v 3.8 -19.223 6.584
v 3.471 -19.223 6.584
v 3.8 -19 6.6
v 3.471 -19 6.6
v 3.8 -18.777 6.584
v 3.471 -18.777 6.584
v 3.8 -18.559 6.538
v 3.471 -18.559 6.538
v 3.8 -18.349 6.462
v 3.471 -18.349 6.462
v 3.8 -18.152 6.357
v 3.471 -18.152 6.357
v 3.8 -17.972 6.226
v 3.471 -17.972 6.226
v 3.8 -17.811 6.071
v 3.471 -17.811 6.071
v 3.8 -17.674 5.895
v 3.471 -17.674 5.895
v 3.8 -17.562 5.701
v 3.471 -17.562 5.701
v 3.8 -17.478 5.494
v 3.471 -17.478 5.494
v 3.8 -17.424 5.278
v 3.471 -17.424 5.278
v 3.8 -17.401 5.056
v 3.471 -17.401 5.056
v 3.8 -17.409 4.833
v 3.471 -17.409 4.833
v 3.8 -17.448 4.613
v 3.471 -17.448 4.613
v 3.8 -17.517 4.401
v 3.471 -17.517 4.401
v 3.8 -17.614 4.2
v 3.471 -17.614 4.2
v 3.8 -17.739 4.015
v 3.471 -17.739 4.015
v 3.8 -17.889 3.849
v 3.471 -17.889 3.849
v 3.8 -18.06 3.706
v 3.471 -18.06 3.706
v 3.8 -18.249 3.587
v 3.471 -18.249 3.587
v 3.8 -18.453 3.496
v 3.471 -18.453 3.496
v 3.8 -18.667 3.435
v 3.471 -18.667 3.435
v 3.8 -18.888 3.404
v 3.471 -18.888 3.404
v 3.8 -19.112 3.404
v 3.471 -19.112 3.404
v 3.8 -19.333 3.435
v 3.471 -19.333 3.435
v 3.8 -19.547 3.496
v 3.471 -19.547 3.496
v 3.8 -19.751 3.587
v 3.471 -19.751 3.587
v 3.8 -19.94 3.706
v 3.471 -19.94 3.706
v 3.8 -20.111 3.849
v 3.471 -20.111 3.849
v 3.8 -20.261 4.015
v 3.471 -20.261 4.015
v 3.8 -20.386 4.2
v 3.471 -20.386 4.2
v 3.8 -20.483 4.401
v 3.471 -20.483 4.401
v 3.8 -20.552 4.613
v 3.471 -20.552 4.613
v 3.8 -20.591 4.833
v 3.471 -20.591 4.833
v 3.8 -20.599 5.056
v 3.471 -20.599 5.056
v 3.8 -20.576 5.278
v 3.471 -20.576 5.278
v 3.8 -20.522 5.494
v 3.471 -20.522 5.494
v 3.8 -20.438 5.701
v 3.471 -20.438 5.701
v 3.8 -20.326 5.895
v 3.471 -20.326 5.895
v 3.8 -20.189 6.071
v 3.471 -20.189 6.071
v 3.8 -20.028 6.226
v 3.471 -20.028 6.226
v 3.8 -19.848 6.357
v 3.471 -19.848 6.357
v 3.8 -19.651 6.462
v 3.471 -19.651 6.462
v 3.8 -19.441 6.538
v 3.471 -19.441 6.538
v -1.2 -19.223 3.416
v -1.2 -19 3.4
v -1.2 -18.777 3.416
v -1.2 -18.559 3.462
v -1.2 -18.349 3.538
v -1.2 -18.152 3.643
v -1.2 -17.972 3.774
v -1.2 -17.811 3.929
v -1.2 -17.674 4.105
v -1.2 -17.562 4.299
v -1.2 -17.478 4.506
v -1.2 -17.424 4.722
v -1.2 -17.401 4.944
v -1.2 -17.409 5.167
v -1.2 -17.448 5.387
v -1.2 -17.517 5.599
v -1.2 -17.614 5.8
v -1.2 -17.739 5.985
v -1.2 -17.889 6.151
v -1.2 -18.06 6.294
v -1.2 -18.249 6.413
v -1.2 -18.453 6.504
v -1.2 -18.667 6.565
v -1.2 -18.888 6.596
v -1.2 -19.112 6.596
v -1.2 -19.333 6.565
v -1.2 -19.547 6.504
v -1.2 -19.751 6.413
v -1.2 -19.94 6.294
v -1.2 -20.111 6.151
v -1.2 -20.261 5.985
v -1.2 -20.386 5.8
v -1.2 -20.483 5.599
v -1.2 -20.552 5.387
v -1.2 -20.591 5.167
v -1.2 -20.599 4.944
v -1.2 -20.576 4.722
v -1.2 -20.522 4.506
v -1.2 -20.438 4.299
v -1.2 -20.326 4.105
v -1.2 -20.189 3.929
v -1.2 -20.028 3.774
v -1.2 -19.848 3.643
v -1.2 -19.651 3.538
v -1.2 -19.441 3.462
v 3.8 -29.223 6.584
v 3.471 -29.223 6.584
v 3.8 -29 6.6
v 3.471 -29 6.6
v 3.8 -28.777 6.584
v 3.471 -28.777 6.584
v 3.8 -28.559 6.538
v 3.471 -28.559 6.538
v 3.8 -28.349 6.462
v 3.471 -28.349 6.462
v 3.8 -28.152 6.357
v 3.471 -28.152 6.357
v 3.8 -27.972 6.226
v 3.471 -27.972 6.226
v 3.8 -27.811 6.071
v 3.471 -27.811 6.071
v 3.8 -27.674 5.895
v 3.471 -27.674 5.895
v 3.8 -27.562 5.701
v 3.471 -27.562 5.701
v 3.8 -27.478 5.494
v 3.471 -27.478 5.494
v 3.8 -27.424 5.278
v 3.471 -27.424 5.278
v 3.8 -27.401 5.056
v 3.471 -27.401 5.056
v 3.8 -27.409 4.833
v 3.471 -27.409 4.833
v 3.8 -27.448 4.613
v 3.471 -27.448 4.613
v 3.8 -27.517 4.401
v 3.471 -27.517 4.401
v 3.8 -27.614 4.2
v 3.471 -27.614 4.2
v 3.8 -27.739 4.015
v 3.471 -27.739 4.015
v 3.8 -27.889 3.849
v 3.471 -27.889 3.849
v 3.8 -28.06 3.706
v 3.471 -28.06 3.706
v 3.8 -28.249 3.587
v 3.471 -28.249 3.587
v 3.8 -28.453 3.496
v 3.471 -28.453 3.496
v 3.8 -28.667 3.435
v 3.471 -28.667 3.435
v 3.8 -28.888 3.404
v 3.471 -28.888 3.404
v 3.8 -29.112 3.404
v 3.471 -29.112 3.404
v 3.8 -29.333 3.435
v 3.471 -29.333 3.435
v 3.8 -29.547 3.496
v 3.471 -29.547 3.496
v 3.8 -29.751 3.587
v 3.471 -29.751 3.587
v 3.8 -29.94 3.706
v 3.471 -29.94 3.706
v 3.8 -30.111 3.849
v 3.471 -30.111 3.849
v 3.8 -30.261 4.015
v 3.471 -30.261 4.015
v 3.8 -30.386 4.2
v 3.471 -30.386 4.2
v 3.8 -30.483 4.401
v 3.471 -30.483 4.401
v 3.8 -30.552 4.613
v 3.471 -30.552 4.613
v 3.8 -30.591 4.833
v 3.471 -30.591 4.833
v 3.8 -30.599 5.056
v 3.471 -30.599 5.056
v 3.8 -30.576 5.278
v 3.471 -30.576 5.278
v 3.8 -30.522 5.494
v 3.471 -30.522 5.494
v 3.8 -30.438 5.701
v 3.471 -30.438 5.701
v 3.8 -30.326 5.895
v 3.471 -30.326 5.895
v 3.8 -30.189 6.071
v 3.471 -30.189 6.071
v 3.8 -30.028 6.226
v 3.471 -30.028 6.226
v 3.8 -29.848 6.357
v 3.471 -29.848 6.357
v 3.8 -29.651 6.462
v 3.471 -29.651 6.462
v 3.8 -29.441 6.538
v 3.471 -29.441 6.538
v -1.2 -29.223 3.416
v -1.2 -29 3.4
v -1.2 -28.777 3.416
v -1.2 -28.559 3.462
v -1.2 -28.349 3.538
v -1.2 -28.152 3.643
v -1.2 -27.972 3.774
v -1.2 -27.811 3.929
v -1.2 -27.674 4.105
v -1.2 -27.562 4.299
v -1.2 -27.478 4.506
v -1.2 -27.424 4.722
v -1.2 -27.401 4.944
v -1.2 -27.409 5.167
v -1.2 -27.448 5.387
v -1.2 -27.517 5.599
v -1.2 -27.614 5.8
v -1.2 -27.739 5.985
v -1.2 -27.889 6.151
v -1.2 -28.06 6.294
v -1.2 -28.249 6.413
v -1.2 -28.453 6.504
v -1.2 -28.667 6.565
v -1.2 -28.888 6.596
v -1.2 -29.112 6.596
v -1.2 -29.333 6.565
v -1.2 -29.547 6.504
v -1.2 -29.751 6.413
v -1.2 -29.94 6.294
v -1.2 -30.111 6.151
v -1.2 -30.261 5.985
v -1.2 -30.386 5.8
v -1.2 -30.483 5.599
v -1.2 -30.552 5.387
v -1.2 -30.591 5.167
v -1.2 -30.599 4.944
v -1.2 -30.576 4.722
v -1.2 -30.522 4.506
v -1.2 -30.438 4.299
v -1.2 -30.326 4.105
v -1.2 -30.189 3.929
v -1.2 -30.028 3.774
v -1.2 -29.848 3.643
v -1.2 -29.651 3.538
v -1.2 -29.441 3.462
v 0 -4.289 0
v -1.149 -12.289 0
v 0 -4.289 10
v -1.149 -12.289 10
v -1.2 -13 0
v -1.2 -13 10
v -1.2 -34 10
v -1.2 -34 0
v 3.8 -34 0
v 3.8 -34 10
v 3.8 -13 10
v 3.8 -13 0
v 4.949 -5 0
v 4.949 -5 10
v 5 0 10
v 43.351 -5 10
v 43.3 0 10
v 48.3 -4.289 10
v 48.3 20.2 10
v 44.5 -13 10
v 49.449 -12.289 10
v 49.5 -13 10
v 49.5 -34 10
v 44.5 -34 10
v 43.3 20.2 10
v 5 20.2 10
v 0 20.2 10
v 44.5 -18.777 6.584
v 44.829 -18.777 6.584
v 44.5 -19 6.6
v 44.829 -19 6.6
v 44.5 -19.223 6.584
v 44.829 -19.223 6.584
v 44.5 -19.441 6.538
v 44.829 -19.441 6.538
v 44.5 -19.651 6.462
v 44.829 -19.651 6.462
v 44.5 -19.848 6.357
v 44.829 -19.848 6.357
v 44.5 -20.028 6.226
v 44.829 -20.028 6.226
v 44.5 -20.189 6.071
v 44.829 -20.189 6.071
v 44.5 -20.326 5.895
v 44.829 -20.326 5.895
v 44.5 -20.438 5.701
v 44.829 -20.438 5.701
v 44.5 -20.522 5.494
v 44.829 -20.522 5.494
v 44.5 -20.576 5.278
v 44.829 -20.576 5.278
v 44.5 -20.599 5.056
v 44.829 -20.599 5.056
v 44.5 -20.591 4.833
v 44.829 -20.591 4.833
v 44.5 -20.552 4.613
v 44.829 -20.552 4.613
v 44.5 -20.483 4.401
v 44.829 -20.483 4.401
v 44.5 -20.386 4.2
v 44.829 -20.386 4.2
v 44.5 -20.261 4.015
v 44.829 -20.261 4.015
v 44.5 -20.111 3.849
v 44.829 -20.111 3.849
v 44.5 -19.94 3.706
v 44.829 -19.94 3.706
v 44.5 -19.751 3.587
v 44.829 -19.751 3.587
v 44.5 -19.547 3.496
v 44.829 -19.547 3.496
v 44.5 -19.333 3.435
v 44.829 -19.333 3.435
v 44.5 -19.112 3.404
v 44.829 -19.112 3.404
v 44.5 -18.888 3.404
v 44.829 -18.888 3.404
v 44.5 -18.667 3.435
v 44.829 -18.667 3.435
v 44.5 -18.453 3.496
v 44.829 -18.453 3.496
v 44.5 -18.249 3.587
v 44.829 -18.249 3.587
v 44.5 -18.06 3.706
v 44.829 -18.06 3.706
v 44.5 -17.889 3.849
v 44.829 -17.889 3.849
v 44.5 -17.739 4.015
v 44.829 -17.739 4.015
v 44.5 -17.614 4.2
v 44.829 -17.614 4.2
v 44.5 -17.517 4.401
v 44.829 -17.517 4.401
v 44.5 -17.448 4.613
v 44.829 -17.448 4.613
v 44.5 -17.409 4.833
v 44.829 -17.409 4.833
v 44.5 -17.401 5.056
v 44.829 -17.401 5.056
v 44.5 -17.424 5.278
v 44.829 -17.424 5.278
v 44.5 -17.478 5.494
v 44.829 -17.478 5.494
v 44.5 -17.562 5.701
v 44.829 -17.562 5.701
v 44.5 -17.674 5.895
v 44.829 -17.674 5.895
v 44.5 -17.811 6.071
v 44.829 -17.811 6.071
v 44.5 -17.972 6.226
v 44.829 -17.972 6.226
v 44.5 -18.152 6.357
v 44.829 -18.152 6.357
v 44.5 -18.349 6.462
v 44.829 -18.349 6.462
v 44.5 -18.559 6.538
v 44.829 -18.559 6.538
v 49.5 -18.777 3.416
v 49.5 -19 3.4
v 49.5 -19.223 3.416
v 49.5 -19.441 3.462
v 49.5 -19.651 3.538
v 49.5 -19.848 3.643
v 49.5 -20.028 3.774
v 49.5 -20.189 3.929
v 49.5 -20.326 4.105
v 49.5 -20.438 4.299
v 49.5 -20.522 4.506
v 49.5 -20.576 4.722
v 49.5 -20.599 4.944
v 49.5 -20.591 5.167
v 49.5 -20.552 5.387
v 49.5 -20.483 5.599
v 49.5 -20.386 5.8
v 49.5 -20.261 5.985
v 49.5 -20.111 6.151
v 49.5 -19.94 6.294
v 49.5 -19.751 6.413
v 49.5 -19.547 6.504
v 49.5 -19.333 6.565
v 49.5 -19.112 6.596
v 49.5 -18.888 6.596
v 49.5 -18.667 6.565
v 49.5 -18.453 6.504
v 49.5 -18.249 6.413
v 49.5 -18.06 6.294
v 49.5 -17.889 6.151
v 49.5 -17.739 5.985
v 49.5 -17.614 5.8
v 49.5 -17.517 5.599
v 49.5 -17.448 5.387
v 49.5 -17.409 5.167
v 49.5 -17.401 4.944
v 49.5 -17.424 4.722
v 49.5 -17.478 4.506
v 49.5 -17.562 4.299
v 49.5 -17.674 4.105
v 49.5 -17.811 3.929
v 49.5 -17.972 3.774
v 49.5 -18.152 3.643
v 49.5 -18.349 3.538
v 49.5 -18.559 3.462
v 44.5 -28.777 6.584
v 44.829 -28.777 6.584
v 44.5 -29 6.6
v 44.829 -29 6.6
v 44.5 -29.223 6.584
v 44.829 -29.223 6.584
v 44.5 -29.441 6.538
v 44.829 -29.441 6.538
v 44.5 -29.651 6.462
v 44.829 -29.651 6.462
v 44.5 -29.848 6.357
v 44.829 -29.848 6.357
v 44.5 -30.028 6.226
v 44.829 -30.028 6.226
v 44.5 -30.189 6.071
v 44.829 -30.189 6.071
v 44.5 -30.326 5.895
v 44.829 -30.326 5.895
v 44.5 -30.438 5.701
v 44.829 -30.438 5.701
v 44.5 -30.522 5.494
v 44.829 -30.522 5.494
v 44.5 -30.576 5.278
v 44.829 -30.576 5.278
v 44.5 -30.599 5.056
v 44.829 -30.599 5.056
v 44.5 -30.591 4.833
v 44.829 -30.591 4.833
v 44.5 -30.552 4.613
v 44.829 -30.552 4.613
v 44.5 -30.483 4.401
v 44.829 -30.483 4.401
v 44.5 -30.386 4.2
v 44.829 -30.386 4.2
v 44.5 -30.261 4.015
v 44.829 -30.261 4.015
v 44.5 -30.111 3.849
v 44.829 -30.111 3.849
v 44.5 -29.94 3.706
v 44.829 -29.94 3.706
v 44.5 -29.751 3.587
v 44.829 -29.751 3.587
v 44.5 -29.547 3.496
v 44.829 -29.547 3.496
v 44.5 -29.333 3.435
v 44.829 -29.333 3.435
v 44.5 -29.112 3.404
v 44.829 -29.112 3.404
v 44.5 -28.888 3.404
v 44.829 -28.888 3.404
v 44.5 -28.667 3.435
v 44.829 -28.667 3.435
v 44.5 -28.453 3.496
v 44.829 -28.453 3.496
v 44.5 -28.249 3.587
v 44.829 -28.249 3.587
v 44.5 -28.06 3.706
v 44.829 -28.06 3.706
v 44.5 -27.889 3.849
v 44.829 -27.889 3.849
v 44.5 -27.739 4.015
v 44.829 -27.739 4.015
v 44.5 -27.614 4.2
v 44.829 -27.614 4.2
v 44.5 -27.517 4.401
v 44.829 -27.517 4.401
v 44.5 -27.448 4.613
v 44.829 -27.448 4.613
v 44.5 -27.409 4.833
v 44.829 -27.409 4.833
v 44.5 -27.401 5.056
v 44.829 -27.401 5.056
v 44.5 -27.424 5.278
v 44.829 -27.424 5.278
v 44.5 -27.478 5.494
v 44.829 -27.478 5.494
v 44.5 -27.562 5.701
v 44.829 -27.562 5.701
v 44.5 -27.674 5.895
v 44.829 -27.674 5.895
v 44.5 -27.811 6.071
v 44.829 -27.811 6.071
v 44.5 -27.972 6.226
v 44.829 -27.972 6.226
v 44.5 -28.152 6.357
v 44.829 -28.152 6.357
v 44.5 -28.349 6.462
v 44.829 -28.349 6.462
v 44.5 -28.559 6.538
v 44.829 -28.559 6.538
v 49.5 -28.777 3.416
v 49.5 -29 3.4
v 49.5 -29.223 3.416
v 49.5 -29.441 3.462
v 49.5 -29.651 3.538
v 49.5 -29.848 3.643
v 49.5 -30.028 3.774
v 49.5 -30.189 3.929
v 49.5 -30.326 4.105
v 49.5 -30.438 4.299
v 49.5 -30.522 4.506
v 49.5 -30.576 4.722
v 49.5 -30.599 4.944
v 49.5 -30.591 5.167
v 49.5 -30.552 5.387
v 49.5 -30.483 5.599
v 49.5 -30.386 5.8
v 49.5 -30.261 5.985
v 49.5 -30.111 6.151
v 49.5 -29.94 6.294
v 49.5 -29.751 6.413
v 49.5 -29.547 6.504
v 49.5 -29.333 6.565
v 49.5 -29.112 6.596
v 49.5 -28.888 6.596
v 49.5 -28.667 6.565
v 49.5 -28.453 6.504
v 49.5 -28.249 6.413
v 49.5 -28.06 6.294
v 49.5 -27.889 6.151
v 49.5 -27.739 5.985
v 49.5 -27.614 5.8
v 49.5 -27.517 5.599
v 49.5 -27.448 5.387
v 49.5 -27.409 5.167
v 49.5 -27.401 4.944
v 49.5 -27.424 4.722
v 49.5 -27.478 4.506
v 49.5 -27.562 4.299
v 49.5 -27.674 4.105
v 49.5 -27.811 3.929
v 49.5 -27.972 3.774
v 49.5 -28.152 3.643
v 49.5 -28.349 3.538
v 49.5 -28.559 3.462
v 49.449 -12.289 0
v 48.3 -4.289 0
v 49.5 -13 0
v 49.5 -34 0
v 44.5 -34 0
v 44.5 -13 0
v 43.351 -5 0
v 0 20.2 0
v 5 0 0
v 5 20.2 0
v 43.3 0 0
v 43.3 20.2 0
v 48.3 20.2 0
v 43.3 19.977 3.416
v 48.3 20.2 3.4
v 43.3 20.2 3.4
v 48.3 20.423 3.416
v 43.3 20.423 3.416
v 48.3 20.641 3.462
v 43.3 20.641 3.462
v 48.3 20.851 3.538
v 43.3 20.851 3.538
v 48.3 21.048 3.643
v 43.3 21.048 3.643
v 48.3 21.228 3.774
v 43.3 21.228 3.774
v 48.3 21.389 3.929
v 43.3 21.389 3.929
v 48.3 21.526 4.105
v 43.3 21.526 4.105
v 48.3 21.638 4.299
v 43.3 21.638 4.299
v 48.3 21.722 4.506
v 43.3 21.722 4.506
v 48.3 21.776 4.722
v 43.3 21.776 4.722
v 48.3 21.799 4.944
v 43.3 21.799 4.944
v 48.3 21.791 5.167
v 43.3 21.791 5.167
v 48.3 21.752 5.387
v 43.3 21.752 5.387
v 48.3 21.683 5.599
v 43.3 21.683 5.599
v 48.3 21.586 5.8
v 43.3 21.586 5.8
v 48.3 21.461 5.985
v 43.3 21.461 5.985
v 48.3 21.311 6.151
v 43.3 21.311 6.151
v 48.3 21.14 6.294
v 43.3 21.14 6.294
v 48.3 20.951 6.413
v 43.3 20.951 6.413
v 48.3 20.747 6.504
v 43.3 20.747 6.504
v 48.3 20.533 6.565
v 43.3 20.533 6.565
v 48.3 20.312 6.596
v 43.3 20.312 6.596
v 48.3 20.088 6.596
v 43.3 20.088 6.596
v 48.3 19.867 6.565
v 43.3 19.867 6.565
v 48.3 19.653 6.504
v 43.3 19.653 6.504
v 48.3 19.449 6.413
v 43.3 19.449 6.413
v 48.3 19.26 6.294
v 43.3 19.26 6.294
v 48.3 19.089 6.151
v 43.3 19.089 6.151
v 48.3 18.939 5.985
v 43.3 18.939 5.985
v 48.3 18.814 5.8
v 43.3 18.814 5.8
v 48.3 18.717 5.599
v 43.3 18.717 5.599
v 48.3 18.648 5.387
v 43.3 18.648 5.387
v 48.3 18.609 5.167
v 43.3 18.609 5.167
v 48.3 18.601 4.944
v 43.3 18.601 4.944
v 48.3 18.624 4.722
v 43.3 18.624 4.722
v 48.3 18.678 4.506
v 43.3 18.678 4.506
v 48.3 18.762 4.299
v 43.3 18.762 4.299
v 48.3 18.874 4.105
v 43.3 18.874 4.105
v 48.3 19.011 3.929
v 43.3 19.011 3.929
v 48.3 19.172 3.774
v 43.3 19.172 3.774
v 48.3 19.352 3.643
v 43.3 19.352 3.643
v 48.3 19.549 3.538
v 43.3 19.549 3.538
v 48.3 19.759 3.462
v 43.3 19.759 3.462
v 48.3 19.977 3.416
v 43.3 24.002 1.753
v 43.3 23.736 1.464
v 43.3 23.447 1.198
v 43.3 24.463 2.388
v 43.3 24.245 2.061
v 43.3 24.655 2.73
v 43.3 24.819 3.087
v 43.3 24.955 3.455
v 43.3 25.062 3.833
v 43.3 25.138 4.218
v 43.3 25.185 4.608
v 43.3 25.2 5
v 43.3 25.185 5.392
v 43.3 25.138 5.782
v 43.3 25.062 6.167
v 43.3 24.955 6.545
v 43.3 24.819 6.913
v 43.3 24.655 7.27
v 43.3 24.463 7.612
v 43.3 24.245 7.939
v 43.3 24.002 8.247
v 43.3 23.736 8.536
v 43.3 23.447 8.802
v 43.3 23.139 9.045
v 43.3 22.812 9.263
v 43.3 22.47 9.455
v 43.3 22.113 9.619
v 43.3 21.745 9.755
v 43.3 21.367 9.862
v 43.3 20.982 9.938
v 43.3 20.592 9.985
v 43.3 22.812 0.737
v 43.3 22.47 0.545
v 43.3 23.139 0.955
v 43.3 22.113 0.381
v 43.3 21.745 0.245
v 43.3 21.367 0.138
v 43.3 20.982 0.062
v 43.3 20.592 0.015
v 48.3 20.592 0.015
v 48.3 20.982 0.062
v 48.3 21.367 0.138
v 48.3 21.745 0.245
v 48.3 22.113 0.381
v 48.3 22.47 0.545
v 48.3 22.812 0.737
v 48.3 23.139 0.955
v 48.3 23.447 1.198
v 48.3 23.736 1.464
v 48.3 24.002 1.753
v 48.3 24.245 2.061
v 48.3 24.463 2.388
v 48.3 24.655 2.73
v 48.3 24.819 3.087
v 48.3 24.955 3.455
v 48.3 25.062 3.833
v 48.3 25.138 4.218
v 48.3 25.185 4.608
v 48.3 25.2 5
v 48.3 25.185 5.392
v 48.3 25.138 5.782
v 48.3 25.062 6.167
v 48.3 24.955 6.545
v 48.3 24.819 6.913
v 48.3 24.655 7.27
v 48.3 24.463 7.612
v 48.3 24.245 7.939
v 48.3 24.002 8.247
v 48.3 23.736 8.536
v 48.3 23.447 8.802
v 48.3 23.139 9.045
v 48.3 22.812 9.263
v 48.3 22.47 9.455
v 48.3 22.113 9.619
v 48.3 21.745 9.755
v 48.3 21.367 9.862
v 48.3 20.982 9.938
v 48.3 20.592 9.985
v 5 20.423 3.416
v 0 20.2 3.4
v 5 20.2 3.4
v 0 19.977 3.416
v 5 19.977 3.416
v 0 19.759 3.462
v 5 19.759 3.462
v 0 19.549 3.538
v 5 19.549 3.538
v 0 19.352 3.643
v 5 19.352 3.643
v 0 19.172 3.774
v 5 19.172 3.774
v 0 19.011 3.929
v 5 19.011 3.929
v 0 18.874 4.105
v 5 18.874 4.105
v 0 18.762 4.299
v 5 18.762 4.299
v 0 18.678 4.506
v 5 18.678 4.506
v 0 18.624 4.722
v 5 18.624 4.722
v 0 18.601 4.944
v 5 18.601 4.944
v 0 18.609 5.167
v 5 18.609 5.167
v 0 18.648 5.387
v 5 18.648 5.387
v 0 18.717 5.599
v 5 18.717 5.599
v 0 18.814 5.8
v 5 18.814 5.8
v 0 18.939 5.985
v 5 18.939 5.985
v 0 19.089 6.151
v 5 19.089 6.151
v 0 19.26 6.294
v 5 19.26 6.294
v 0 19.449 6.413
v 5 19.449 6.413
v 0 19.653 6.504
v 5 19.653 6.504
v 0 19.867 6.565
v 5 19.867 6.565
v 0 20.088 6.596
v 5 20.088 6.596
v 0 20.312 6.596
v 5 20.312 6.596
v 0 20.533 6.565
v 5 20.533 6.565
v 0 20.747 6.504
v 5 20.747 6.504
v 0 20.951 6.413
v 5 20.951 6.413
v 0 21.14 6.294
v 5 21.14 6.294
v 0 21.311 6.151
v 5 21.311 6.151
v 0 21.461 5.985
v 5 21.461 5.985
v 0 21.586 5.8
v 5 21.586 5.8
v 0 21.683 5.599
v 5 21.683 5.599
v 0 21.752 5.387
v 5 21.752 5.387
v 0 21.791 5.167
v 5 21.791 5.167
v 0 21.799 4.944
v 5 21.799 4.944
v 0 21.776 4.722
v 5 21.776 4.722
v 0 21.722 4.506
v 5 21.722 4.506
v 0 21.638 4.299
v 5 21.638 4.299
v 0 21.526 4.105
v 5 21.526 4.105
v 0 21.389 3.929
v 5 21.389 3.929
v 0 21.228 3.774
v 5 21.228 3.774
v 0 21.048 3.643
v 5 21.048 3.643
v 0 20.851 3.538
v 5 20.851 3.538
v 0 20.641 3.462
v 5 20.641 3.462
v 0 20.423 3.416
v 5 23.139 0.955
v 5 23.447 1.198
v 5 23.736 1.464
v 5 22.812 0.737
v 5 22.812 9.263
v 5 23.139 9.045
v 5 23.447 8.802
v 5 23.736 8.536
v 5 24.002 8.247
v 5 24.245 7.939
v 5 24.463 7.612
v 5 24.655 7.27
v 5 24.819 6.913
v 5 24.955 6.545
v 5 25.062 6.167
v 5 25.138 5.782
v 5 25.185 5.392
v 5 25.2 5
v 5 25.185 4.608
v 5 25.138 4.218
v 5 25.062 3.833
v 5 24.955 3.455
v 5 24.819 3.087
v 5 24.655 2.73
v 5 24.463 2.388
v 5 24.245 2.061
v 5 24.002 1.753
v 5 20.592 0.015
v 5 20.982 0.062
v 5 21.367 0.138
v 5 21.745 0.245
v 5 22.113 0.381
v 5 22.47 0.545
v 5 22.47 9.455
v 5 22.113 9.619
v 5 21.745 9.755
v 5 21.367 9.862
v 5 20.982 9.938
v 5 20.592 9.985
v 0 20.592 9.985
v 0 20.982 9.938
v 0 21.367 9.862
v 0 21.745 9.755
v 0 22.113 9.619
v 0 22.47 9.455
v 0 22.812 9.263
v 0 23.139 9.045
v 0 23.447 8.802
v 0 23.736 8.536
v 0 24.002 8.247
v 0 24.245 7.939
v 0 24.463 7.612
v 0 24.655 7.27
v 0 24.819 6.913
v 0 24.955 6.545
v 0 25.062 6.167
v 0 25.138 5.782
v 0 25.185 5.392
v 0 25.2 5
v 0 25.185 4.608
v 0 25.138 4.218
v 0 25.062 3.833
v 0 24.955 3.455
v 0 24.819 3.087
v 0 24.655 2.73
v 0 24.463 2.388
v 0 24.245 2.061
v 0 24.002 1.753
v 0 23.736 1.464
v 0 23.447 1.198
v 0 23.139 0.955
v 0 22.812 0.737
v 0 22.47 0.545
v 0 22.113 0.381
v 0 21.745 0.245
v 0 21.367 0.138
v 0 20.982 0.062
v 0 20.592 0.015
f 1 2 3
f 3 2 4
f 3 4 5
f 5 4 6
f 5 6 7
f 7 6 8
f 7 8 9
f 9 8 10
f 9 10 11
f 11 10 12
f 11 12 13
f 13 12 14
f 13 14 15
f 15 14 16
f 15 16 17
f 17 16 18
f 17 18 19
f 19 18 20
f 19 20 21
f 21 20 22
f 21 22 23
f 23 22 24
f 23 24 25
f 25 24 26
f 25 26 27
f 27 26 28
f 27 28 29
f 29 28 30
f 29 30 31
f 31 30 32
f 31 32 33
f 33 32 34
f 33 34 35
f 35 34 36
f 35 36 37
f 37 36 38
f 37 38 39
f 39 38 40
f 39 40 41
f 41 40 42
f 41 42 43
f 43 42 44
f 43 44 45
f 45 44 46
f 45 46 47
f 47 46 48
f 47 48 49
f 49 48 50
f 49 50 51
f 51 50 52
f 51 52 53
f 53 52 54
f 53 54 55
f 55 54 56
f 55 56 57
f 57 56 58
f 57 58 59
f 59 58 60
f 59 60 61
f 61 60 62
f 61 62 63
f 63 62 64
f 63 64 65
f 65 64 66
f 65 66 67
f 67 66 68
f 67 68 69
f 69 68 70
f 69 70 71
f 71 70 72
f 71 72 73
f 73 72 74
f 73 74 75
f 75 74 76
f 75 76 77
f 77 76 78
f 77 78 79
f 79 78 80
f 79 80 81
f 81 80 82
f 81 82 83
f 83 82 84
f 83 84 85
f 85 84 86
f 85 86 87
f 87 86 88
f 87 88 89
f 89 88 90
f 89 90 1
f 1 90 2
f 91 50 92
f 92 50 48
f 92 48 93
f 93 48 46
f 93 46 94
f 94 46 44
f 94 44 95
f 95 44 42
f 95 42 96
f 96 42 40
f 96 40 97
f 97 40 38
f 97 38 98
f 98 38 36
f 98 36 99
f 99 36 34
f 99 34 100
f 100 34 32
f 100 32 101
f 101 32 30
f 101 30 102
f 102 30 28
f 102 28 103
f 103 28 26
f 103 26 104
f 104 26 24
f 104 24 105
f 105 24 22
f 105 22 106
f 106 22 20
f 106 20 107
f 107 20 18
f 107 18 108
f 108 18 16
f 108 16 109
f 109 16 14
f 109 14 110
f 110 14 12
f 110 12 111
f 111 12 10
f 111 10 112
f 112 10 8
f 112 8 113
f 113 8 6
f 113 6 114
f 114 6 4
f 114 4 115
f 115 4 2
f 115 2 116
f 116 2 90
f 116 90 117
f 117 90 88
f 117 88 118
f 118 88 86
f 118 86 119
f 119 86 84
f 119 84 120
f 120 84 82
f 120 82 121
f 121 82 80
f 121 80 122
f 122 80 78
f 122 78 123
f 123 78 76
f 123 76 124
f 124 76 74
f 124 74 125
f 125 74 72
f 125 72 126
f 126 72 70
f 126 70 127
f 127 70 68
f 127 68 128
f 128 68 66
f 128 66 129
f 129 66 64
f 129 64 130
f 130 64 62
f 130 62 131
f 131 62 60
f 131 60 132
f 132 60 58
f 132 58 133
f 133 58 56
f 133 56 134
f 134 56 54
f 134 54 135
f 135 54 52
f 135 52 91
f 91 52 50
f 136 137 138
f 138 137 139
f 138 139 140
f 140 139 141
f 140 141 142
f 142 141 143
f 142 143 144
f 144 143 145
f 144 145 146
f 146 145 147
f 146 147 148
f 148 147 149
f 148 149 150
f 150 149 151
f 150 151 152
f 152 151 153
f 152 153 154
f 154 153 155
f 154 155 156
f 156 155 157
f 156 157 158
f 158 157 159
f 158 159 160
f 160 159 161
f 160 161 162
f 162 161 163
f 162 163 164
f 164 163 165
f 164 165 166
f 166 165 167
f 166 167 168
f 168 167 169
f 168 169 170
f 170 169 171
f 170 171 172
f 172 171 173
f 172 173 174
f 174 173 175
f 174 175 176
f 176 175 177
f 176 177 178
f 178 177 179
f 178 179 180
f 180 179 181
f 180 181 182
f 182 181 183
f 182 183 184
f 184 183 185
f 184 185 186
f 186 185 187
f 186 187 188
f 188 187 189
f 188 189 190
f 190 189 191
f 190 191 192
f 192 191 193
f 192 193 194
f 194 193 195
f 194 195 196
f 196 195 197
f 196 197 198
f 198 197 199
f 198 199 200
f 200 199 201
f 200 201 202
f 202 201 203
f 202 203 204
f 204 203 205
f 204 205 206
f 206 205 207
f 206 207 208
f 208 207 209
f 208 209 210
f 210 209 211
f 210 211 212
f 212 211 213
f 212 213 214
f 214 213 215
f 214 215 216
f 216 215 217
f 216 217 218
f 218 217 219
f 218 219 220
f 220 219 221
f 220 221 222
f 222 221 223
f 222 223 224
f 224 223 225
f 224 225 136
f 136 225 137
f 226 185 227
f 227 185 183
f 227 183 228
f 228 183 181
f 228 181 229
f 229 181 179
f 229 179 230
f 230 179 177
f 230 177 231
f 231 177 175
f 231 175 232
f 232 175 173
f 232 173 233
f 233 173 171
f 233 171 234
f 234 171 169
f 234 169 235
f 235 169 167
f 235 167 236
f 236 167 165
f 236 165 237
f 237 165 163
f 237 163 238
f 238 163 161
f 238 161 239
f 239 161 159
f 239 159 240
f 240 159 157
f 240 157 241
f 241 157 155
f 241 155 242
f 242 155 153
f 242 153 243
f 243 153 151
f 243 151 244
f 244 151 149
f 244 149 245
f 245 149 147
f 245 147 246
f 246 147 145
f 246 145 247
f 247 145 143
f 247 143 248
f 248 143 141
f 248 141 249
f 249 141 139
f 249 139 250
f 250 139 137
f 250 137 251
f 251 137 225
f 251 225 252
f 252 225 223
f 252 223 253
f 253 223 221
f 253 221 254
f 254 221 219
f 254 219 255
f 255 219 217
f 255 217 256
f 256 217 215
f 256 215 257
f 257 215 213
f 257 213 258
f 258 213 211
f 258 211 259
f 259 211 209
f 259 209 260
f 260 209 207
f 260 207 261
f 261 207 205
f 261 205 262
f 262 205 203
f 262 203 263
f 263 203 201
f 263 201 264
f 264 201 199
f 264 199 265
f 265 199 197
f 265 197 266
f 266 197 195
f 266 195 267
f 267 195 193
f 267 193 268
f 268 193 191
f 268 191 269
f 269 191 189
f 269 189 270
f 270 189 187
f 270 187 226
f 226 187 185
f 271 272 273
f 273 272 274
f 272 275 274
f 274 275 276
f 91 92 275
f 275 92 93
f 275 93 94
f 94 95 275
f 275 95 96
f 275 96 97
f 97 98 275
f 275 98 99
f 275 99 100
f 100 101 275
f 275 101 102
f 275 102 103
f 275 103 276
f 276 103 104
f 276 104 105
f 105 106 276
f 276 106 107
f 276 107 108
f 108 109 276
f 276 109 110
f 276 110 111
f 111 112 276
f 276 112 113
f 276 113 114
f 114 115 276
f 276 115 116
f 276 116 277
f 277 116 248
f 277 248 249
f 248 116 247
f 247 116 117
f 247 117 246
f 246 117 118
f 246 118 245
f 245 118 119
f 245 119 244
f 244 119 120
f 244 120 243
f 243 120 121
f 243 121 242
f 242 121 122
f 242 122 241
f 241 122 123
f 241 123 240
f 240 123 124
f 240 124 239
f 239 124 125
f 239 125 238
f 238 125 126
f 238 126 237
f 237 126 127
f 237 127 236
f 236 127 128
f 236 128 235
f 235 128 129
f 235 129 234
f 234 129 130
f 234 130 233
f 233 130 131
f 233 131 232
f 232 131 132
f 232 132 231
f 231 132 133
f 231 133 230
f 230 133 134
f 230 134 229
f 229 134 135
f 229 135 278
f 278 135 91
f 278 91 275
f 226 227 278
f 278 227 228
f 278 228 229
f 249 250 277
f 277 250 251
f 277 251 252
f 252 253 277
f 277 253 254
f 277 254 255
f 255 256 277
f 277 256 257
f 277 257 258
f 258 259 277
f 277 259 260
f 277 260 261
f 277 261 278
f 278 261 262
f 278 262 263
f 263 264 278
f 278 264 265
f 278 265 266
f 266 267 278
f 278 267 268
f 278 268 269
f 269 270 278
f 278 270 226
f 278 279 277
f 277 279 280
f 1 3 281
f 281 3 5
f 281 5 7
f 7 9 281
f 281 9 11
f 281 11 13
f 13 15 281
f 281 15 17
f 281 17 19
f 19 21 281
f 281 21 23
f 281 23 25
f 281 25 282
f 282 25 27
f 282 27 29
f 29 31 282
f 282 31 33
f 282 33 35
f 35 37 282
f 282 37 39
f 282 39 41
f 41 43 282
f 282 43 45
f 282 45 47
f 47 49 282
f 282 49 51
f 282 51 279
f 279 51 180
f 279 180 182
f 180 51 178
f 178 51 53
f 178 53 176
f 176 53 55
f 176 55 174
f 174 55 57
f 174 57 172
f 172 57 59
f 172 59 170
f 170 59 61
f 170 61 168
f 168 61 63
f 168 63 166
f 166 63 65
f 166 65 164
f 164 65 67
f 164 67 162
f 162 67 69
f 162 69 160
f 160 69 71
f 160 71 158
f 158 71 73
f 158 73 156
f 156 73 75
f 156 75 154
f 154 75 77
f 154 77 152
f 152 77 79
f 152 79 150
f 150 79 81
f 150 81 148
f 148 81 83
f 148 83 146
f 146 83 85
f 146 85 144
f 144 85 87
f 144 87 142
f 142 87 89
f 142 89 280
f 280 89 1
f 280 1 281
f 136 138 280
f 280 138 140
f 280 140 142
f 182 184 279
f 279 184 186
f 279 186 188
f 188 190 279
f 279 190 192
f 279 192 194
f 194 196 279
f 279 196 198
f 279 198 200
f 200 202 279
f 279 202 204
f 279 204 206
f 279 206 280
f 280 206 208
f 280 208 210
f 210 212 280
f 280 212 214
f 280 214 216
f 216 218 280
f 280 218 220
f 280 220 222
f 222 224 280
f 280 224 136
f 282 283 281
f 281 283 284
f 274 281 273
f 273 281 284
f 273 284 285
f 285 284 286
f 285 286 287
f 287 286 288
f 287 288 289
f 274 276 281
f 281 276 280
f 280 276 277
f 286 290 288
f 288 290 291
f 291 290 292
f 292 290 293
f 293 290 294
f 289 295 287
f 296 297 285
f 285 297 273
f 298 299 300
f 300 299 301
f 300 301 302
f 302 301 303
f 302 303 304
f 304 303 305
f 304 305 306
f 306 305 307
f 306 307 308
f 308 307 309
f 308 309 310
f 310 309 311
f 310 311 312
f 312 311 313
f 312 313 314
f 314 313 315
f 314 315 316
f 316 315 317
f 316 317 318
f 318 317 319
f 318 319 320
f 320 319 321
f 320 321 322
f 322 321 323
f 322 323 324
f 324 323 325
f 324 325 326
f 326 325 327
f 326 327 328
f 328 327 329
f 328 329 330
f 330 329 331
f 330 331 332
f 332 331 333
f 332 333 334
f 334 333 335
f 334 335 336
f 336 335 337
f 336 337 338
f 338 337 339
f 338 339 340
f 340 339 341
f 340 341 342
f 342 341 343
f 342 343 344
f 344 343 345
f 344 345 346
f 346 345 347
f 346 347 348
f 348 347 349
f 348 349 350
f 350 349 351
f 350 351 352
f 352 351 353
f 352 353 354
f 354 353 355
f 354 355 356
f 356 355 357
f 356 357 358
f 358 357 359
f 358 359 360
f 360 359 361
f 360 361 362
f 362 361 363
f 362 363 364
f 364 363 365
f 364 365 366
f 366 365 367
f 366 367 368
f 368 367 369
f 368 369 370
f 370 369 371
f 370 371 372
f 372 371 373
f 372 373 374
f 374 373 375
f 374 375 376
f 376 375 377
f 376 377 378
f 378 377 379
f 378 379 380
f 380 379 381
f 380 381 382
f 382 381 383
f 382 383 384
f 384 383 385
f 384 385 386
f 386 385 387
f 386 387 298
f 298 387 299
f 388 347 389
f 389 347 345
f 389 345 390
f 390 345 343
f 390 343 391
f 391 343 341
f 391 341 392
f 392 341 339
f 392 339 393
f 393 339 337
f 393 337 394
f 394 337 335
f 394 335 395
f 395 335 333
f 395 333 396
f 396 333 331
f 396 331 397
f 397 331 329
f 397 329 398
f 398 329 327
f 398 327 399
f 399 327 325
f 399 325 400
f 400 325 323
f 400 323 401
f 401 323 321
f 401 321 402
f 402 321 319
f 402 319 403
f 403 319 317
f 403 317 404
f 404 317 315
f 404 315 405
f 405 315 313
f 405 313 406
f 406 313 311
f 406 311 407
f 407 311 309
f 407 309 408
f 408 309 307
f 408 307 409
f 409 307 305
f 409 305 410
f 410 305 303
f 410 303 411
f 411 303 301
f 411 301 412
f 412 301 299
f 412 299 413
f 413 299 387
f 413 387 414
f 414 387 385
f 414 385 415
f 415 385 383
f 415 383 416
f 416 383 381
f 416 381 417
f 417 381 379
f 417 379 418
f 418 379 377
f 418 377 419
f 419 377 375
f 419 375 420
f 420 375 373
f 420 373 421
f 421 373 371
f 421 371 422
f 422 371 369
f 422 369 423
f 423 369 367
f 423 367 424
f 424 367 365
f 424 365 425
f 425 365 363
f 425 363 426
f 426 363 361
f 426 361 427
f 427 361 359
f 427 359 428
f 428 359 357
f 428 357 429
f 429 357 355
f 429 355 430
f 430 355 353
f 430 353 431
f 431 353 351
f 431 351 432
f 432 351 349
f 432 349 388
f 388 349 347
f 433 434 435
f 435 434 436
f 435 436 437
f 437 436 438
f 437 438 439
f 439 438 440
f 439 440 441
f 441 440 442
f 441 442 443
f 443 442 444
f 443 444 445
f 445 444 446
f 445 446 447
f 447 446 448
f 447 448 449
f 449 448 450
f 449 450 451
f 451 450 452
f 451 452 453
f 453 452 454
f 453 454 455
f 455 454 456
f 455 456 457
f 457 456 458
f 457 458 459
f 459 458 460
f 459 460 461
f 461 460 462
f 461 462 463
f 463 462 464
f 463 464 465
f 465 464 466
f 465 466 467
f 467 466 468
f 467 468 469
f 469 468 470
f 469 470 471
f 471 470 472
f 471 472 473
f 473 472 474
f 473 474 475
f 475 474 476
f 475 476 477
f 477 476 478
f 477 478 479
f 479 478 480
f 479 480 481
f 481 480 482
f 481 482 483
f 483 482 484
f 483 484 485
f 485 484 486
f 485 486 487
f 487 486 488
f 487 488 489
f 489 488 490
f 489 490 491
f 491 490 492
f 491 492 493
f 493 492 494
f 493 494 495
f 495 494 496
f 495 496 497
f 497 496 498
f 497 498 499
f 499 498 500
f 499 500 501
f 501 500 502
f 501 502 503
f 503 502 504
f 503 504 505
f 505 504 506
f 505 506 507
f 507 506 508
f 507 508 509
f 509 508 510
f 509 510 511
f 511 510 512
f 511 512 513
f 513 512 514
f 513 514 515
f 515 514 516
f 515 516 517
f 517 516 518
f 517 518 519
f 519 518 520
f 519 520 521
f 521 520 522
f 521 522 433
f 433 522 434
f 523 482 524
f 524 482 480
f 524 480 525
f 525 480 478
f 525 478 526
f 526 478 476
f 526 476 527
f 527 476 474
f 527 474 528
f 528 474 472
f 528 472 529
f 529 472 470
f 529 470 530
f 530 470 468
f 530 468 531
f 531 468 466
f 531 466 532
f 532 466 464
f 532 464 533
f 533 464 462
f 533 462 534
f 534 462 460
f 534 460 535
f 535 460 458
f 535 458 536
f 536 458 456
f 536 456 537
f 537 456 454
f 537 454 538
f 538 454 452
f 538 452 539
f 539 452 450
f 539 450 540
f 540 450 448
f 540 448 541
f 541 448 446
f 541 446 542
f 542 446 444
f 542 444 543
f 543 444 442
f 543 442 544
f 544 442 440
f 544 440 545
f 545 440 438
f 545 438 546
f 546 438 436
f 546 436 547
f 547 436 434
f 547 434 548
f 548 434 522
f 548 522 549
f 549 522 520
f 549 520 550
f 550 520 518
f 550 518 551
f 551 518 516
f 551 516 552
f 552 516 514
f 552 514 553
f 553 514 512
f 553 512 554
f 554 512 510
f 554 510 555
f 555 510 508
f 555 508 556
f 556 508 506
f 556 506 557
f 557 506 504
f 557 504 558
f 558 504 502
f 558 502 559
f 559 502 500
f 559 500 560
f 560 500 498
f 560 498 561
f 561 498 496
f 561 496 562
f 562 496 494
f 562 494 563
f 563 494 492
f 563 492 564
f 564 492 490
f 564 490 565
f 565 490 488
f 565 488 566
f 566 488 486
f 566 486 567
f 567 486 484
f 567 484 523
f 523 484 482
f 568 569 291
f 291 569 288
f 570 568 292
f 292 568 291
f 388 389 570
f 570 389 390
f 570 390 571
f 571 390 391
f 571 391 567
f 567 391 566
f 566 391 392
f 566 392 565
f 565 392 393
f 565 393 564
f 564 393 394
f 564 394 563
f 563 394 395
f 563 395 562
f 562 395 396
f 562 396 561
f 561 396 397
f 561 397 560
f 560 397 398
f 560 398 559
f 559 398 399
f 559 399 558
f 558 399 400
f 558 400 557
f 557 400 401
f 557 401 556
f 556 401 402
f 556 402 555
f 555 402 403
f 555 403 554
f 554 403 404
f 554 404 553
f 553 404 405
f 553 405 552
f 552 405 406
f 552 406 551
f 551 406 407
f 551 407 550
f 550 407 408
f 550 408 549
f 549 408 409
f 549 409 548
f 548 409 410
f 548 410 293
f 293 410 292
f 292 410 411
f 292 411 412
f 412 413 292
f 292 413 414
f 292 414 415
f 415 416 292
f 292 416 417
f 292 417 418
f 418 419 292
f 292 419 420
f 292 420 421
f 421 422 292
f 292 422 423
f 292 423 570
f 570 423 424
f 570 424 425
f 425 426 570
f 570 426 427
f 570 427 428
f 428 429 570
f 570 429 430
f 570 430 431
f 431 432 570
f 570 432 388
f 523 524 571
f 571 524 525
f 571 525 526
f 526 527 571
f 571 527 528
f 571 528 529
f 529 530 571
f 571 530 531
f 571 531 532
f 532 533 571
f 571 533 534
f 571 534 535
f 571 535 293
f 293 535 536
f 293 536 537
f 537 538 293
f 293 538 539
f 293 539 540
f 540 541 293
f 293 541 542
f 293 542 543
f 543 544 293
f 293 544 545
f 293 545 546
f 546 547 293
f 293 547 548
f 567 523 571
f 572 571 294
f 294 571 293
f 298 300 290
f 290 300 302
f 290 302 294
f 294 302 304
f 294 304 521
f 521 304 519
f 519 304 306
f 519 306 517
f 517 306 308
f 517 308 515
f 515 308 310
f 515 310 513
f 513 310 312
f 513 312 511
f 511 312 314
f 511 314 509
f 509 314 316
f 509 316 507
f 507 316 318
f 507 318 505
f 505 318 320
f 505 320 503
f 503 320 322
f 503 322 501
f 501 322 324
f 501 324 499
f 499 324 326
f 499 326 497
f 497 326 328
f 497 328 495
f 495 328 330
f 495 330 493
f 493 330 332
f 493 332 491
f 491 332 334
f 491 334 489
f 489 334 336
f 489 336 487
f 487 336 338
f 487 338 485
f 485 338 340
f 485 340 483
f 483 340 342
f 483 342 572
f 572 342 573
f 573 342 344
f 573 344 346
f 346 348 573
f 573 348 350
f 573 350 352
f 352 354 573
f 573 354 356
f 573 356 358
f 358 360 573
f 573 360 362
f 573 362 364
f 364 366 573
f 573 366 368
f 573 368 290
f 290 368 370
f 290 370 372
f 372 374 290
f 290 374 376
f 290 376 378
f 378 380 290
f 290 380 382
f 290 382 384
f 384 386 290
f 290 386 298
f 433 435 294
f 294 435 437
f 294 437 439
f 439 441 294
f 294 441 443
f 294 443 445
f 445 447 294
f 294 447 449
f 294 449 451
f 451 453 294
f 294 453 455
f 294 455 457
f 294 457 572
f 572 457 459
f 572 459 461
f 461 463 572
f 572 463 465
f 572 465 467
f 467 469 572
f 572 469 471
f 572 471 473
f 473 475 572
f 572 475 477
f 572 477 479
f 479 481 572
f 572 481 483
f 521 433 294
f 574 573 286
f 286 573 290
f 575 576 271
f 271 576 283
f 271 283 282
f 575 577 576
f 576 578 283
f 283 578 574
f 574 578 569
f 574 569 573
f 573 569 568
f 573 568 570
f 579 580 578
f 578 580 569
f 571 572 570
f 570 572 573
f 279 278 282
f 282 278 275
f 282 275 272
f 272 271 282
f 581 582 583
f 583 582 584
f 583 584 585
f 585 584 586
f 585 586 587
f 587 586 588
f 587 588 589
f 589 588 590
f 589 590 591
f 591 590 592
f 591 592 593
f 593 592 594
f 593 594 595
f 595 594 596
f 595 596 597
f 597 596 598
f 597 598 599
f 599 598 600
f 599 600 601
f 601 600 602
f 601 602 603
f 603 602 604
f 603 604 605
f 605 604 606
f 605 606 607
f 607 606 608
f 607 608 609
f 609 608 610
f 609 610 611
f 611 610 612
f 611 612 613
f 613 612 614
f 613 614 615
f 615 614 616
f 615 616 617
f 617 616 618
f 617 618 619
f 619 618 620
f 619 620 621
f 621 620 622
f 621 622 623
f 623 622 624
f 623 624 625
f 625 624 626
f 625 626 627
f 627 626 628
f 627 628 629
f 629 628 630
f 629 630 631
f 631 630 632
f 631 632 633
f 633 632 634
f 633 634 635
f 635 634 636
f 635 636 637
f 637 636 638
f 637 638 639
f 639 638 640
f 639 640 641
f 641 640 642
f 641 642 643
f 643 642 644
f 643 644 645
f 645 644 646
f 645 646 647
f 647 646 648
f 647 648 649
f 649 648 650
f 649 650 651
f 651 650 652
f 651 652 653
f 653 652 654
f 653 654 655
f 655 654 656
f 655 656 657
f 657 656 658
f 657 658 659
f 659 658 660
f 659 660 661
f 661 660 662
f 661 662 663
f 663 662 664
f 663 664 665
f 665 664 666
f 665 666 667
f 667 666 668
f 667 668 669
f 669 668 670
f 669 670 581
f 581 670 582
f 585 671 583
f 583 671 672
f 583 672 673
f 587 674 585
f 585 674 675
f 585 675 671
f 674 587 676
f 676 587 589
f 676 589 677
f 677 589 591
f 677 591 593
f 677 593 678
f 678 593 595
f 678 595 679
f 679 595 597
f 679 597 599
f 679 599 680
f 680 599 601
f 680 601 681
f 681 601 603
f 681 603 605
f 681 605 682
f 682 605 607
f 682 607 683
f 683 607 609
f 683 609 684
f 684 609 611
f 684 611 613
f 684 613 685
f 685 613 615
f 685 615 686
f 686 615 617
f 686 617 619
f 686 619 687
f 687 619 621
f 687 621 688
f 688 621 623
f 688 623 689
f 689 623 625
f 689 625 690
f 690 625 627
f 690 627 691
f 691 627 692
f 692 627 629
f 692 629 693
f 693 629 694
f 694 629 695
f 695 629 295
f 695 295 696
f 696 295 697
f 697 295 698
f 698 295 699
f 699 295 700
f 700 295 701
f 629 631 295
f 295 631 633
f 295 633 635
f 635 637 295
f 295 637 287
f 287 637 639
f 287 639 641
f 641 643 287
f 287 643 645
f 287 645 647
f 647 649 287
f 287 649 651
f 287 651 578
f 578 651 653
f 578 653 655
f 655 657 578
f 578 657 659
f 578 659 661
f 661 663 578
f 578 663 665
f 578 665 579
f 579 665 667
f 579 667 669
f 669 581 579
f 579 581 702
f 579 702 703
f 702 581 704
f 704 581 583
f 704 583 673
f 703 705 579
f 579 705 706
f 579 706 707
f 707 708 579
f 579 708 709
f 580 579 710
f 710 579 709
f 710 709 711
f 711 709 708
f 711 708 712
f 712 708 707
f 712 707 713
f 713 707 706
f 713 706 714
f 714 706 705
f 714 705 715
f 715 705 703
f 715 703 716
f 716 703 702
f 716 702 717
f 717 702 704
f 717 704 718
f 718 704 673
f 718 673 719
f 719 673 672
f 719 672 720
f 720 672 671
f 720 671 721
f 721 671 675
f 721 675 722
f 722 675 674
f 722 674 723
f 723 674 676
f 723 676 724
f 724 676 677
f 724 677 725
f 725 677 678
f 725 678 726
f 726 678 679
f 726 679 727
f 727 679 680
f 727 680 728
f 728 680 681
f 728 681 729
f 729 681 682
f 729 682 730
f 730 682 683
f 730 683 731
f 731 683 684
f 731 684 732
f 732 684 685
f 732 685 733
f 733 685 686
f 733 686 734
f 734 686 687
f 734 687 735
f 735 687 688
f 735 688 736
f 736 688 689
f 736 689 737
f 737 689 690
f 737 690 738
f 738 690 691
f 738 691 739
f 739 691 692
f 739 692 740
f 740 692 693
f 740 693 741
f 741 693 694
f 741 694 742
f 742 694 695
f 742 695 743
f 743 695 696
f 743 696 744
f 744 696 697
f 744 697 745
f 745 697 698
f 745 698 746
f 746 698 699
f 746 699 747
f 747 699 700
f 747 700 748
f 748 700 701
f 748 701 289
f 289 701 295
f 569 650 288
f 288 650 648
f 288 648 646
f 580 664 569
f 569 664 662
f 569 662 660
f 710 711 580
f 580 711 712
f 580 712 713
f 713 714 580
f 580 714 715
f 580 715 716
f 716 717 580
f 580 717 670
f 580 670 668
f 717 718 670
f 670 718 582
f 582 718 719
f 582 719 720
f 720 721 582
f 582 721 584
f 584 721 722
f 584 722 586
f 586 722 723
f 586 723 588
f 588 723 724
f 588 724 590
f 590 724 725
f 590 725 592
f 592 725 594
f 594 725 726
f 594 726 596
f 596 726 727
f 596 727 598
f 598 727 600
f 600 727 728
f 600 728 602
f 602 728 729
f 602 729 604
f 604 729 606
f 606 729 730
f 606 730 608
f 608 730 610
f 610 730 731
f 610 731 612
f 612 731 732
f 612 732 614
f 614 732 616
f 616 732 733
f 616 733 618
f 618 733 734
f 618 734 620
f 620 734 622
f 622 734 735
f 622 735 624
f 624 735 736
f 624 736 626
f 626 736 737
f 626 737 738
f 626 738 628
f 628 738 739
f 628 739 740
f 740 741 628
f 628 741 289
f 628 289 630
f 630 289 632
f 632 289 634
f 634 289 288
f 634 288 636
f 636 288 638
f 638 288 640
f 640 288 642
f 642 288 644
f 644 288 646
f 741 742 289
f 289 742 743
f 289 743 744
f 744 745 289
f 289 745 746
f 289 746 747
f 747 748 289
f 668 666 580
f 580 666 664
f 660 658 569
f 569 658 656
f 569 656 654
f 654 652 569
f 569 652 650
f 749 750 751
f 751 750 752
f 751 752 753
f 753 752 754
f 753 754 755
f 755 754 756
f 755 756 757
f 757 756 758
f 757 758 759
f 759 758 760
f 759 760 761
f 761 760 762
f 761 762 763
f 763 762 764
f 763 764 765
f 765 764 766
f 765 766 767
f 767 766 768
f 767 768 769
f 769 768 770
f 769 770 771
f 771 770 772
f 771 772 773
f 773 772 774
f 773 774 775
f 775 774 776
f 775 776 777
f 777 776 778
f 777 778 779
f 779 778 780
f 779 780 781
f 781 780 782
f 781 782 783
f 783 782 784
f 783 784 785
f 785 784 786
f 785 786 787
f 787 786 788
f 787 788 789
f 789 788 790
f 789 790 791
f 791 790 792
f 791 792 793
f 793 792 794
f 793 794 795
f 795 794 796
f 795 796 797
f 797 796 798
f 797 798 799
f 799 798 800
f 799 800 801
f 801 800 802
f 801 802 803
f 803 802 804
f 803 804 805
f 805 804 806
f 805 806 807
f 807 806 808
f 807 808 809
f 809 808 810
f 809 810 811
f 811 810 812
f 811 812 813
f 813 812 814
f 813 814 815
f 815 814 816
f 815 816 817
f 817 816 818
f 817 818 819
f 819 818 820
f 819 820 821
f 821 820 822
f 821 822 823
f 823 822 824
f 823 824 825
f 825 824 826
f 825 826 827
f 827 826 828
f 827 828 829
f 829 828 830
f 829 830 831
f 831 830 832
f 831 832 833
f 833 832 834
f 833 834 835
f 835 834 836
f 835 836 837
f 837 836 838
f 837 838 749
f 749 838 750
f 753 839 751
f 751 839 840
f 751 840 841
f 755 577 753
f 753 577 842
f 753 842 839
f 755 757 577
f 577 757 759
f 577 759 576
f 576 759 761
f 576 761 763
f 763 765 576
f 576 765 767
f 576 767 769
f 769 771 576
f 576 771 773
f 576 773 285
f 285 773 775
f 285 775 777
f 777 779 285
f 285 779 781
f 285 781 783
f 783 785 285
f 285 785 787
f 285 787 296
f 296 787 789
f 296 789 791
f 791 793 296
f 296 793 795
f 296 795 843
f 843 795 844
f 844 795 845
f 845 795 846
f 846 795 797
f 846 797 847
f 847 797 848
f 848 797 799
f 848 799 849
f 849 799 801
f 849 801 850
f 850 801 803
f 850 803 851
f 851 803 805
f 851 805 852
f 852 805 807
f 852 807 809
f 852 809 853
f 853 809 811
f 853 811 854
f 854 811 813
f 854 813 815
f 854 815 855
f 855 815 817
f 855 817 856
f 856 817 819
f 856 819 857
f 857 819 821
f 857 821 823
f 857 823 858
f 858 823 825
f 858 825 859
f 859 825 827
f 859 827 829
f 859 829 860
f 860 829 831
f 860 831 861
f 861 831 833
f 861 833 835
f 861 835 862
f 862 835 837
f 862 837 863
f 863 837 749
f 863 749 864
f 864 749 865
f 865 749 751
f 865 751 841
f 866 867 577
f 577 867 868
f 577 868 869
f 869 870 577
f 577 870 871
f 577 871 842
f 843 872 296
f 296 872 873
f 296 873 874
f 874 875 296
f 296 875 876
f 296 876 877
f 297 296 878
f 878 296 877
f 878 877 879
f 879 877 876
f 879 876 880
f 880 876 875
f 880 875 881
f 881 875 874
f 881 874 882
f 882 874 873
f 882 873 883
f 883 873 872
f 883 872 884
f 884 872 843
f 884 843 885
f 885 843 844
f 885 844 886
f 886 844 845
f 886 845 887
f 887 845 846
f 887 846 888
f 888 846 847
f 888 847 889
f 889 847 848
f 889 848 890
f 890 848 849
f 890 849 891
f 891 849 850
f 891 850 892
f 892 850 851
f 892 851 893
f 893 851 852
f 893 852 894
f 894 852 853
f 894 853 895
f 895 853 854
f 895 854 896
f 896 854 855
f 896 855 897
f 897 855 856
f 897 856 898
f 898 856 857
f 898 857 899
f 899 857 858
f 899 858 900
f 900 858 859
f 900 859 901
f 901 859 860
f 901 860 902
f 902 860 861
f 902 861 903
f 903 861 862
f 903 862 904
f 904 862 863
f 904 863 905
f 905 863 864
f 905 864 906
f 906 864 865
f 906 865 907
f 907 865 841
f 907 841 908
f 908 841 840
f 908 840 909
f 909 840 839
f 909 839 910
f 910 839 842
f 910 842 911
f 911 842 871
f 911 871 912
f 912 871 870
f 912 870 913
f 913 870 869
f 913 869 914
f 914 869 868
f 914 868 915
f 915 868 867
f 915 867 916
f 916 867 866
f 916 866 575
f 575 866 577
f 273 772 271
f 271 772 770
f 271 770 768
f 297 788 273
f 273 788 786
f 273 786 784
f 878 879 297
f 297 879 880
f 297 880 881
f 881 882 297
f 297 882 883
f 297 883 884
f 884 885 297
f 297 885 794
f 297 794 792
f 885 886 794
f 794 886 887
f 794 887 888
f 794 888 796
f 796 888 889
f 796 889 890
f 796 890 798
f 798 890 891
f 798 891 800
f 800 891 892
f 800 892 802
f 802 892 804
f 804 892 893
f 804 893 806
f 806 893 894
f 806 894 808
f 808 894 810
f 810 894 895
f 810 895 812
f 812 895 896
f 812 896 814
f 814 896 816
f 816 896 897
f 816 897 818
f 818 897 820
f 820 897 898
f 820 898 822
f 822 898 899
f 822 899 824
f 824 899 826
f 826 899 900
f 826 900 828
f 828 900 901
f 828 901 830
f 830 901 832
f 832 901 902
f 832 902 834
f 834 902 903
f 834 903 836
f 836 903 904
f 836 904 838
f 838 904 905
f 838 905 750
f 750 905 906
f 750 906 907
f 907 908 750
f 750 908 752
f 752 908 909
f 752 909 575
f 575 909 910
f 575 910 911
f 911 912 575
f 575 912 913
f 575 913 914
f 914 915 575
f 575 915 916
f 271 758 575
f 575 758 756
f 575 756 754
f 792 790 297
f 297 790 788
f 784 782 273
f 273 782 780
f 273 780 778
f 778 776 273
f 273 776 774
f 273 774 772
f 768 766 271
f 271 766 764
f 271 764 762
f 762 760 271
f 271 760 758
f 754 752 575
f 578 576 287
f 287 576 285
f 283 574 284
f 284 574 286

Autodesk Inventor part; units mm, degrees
ref_plane "YZ Plane" through (0, 0, 0) normal (1, 0, 0) x (0, 1, 0)
ref_plane "XZ Plane" through (0, 0, 0) normal (0, 1, 0) x (-1, 0, 0)
sketch "Эскиз1" plane through (0, 0, 0) normal (0, 0, 1) x (1, 0, 0)
  line L0 (0, 0) -> (5, 0)
  line L1 (5, 0) -> (5, 18)
  line L2 (5, 18) -> (0, 18)
  line L3 (0, 18) -> (0, 0)
  line L4 (0, 0) -> (24.15, 0)
  line L5 (24.15, 0) -> (24.15, -5)
  line L6 (24.15, -5) -> (0, -5)
  line L7 (0, -5) -> (0, 0)
  dimension "d0" = 5
  dimension "d1" = 18
  dimension "d2" = 24.15
  dimension "d3" = 5
extrude "Выдавливание1" add sketch "Эскиз1" along normal blind 10
sketch "Эскиз4" plane through (0, 18, 0) normal (0, 1, 0) x (1, 0, 0)
  line L0 (0, 0) -> (0, -10) projected
  line L1 (0, 0) -> (0, -10) projected
  line L2 (5, 0) -> (0, 0) projected
  line L3 (0, 0) -> (0, -10) projected
  line L4 (5, -10) -> (0, -10) projected
  line L5 (5, 0) -> (5, -10) projected
extrude "Выдавливание2" add sketch "Эскиз4" along normal blind 7.2
fillet "Сопряжение1" radius 5 2 edges at (2.5, 25.2, 10) (2.5, 25.2, 0)
sketch "Эскиз5" plane through (5, 0, 10) normal (1, 0, 0) x (0, 0, -1)
  line L0 (0, -5) -> (0, -5) projected
  line L1 (10, -5) -> (10, -5) projected
  arc A0 (10, 20.2) -> (0, 20.2) centre (5, 20.2) ccw projected
  point P0 (10, 0)
hole "Отверстие2" at (5, 20.2, 5) direction (-1, 0, 0) diameter 3.2 depth 5
mirror "Зеркальное отражение1" about plane through (24.15, -5, 0) normal (1, 0, 0)
sketch "Эскиз9" plane through (0, 0, 0) normal (0, 0, -1) x (-1, 0, 0)
  line L0 (-48.3, 20.2) -> (-48.3, -5) projected
  line L1 (-48.3, -5) -> (-43.3, -5)
  line L2 (-43.3, -5) -> (-43.3, -4.289)
  line L3 (-43.3, -4.289) -> (-48.3, -4.289)
  line L4 (-48.3, -4.289) -> (-48.3, -5)
  line L5 (-48.3, -4.289) -> (-43.3508, -5)
  line L6 (-43.3508, -5) -> (-44.5, -13)
  line L7 (-44.5, -13) -> (-49.4492, -12.289)
  line L8 (-49.4492, -12.289) -> (-48.3, -4.289)
  line L9 (-44.5, -13) -> (-49.5, -13)
  line L10 (-49.5, -13) -> (-49.5, -34)
  line L11 (-49.5, -34) -> (-44.5, -34)
  line L12 (-44.5, -34) -> (-44.5, -13)
  line L13 (0, -5) -> (-48.3, -5) projected
  line L14 (-49.4492, -12.289) -> (-49.5, -13)
  point P0 (0, 0)
  point P1 (-43.3, -5.581)
  point P2 (-46.5, -13.5979)
  dimension "d39" = 5
  dimension "d45" = 5
  dimension "d47" = 5
  dimension "d66" = 29
  dimension "d68" = 21
  dimension "d71" = 1.2
extrude "Выдавливание4" add sketch "Эскиз9" against normal blind 10
sketch "Эскиз10" plane through (49.5, -34, 0) normal (1, 0, 0) x (0, 0, -1)
  line L0 (0, 0) -> (-10, 0) projected
  line L1 (-5, 0) -> (-5, 5)
  line L2 (-5, 5) -> (-5, 15)
  point P0 (0, 34)
  dimension "d48" = 5
  dimension "d49" = 10
hole "Отверстие5" at (49.5, -19, 5) at (49.5, -29, 5) direction (-1, 0, 0) diameter 3.2 end through all
ref_plane "РабПлоскость1" through (24.15, 20.2, 5) normal (1, 0, 0) x (0, 0, -1)
mirror "Зеркальное отражение2" about plane through (24.15, 20.2, 5) normal (1, 0, 0) of "Выдавливание4", "Отверстие5"
equation "\"d63\" = Толщина"
equation "\"Радиус_гибки\" = Толщина"
equation "\"Ширина_просечки\" = Толщина"
equation "\"Глубина_просечки\" = 0.5 * Толщина"
equation "\"Размер_просечки\" = 4 * Толщина"
equation "\"Мин_остаток\" = 2 * Толщина"
equation "\"Радиус_перехода\" = Радиус_гибки"
equation "\"Радиус_Якоби\" = Толщина"
equation "\"Размер_зазора\" = Толщина"
equation "\"Толщина\" = 0.5"
properties part number "Стойка для камеры"
